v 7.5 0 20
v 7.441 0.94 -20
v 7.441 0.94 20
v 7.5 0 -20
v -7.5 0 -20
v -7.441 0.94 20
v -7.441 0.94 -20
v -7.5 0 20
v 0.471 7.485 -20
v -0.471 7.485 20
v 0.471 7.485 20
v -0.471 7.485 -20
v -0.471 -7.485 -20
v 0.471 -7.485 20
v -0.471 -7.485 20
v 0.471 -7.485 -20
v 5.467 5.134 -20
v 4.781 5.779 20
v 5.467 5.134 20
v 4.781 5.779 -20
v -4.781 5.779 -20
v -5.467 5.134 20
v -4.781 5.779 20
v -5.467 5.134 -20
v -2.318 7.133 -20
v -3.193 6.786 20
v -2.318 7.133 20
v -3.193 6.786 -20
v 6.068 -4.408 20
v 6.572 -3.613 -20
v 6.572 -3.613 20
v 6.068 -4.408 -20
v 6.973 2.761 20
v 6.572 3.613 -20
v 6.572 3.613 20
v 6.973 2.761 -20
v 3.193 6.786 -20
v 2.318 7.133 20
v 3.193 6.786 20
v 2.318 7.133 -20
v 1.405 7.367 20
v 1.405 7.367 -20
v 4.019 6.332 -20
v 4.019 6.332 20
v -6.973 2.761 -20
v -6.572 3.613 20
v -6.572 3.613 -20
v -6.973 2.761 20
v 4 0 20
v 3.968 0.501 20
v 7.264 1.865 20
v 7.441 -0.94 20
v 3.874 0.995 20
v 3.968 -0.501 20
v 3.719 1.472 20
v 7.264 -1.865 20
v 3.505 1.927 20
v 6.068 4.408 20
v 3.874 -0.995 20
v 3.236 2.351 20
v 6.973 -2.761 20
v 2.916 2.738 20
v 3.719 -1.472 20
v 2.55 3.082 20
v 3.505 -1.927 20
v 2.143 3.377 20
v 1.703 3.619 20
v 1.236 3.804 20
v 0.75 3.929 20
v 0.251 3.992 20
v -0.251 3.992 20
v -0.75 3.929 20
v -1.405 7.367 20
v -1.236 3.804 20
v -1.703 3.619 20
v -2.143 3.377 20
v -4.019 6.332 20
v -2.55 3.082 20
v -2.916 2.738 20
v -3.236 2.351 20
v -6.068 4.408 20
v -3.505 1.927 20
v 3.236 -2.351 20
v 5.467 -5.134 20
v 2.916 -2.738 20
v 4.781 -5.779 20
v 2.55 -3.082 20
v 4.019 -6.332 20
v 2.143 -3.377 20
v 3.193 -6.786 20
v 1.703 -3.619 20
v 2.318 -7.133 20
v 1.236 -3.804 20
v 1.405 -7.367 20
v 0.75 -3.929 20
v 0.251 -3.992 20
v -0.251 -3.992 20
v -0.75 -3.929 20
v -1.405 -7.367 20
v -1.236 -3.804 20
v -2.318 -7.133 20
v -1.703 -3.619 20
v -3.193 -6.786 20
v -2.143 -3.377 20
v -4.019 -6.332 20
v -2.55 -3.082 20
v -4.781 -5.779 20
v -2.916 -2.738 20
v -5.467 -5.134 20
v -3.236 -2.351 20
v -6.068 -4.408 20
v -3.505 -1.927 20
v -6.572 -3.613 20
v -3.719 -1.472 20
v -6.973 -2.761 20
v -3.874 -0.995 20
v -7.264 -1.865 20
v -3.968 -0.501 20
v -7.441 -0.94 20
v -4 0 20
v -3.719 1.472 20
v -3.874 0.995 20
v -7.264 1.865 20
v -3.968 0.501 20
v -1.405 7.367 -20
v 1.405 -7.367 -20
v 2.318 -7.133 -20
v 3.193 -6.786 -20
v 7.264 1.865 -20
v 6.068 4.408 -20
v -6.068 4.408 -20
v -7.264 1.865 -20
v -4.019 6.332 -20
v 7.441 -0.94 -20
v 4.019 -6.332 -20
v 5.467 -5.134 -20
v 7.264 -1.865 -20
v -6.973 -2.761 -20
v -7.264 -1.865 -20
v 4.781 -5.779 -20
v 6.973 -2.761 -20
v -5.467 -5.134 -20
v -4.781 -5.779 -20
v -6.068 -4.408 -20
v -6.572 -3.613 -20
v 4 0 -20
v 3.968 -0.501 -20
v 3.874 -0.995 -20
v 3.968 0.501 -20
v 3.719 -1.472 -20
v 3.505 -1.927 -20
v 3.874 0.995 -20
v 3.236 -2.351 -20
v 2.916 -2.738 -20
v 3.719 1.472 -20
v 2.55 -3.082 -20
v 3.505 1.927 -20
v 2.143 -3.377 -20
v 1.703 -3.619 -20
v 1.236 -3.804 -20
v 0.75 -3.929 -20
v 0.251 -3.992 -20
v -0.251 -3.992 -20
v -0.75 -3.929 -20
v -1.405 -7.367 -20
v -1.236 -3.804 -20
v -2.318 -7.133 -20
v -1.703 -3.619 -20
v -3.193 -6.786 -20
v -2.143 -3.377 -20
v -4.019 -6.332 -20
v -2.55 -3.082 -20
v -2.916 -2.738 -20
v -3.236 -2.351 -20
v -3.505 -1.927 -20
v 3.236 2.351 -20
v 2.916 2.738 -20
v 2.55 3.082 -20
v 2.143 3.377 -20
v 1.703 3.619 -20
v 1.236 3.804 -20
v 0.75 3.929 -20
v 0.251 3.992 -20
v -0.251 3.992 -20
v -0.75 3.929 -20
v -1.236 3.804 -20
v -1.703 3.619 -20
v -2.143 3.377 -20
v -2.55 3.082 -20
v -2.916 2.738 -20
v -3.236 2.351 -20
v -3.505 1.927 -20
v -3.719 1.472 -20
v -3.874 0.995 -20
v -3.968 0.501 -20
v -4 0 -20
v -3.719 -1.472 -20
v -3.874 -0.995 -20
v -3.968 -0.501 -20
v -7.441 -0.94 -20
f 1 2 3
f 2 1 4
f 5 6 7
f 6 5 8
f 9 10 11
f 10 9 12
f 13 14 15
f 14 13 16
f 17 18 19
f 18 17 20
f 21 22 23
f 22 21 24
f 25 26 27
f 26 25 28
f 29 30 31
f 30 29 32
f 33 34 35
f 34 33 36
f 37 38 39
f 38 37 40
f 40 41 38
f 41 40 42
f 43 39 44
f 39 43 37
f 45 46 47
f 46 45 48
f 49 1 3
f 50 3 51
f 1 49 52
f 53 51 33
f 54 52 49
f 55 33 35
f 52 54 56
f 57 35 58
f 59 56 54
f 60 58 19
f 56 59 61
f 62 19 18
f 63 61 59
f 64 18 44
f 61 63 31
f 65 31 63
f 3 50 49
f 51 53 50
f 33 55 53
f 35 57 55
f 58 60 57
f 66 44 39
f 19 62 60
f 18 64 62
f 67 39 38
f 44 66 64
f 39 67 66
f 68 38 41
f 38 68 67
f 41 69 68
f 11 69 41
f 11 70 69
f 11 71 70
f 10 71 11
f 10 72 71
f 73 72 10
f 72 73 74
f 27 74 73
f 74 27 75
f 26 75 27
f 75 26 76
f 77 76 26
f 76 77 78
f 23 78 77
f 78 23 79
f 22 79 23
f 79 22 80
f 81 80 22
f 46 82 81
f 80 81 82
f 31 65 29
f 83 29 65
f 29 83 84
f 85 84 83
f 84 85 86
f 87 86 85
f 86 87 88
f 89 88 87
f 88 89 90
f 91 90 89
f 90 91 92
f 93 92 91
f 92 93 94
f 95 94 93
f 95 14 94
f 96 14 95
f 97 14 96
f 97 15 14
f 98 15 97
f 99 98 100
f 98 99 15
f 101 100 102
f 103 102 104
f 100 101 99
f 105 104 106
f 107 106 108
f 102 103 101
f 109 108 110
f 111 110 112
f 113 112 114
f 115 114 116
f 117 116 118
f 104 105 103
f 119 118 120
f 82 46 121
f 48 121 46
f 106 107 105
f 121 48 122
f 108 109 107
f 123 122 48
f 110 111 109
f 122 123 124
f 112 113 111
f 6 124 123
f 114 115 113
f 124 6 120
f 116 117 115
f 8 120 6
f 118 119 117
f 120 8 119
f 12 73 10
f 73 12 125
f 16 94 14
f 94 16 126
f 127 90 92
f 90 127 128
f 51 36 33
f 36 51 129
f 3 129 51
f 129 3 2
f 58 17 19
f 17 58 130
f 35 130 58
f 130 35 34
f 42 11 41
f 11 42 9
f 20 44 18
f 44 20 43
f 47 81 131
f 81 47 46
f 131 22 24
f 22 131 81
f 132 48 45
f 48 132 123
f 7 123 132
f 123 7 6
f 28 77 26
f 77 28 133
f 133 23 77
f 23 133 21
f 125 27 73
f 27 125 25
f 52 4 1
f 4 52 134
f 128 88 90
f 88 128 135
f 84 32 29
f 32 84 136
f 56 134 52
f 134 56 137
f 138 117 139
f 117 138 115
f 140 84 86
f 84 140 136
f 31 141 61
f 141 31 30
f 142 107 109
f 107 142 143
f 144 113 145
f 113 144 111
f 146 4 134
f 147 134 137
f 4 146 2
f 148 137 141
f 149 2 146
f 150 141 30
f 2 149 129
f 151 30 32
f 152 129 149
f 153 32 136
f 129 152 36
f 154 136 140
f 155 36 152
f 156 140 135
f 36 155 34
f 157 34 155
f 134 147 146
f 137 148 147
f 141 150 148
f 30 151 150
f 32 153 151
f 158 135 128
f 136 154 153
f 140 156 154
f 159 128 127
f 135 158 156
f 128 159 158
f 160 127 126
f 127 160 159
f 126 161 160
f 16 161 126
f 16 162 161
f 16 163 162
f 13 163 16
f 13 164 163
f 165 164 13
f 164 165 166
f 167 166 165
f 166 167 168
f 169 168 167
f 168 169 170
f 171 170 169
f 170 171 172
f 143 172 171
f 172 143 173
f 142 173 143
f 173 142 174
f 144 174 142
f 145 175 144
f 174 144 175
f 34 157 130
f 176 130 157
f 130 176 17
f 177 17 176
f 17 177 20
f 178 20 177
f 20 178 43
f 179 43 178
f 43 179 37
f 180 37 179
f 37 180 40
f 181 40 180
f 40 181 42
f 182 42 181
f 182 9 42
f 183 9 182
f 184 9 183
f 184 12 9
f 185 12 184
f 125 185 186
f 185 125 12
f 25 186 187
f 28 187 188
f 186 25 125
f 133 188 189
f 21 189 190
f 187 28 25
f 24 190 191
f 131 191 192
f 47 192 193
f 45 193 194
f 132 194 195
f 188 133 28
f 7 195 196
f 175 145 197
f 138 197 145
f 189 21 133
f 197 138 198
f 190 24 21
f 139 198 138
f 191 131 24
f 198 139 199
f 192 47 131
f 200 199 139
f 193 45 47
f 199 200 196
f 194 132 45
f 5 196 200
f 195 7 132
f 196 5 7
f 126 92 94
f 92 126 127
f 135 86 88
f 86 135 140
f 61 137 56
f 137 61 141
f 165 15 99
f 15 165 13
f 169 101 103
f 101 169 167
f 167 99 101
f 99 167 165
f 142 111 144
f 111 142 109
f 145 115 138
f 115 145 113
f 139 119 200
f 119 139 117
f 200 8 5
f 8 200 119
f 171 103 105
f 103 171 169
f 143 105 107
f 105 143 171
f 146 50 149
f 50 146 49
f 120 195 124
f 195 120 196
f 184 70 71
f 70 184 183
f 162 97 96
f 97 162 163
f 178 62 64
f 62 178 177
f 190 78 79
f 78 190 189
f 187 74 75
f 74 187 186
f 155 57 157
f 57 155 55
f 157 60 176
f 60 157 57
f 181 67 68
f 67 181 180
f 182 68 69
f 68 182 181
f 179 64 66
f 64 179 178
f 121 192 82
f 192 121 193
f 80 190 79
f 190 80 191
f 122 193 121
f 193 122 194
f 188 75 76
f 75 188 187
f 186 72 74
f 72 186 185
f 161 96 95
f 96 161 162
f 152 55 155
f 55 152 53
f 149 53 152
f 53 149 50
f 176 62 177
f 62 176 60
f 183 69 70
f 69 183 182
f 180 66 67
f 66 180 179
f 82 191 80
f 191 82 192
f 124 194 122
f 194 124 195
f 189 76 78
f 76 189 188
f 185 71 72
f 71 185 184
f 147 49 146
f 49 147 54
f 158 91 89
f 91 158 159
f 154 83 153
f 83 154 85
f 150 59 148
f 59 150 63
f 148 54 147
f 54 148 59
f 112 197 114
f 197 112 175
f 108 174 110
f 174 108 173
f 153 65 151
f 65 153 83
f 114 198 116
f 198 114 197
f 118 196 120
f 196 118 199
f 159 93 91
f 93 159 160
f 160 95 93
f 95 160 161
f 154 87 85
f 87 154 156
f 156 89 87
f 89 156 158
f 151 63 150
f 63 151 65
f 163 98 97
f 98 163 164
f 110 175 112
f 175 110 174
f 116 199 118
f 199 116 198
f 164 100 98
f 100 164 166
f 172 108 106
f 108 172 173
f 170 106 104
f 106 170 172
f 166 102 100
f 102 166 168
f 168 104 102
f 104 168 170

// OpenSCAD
$fn = 50;


difference() {
	union() {
		translate(v = [0, 0, -20.0000000000]) {
			cylinder(h = 40, r = 7.5000000000);
		}
	}
	union() {
		translate(v = [0, 0, -100.0000000000]) {
			cylinder(h = 200, r = 4.0000000000);
		}
	}
}
